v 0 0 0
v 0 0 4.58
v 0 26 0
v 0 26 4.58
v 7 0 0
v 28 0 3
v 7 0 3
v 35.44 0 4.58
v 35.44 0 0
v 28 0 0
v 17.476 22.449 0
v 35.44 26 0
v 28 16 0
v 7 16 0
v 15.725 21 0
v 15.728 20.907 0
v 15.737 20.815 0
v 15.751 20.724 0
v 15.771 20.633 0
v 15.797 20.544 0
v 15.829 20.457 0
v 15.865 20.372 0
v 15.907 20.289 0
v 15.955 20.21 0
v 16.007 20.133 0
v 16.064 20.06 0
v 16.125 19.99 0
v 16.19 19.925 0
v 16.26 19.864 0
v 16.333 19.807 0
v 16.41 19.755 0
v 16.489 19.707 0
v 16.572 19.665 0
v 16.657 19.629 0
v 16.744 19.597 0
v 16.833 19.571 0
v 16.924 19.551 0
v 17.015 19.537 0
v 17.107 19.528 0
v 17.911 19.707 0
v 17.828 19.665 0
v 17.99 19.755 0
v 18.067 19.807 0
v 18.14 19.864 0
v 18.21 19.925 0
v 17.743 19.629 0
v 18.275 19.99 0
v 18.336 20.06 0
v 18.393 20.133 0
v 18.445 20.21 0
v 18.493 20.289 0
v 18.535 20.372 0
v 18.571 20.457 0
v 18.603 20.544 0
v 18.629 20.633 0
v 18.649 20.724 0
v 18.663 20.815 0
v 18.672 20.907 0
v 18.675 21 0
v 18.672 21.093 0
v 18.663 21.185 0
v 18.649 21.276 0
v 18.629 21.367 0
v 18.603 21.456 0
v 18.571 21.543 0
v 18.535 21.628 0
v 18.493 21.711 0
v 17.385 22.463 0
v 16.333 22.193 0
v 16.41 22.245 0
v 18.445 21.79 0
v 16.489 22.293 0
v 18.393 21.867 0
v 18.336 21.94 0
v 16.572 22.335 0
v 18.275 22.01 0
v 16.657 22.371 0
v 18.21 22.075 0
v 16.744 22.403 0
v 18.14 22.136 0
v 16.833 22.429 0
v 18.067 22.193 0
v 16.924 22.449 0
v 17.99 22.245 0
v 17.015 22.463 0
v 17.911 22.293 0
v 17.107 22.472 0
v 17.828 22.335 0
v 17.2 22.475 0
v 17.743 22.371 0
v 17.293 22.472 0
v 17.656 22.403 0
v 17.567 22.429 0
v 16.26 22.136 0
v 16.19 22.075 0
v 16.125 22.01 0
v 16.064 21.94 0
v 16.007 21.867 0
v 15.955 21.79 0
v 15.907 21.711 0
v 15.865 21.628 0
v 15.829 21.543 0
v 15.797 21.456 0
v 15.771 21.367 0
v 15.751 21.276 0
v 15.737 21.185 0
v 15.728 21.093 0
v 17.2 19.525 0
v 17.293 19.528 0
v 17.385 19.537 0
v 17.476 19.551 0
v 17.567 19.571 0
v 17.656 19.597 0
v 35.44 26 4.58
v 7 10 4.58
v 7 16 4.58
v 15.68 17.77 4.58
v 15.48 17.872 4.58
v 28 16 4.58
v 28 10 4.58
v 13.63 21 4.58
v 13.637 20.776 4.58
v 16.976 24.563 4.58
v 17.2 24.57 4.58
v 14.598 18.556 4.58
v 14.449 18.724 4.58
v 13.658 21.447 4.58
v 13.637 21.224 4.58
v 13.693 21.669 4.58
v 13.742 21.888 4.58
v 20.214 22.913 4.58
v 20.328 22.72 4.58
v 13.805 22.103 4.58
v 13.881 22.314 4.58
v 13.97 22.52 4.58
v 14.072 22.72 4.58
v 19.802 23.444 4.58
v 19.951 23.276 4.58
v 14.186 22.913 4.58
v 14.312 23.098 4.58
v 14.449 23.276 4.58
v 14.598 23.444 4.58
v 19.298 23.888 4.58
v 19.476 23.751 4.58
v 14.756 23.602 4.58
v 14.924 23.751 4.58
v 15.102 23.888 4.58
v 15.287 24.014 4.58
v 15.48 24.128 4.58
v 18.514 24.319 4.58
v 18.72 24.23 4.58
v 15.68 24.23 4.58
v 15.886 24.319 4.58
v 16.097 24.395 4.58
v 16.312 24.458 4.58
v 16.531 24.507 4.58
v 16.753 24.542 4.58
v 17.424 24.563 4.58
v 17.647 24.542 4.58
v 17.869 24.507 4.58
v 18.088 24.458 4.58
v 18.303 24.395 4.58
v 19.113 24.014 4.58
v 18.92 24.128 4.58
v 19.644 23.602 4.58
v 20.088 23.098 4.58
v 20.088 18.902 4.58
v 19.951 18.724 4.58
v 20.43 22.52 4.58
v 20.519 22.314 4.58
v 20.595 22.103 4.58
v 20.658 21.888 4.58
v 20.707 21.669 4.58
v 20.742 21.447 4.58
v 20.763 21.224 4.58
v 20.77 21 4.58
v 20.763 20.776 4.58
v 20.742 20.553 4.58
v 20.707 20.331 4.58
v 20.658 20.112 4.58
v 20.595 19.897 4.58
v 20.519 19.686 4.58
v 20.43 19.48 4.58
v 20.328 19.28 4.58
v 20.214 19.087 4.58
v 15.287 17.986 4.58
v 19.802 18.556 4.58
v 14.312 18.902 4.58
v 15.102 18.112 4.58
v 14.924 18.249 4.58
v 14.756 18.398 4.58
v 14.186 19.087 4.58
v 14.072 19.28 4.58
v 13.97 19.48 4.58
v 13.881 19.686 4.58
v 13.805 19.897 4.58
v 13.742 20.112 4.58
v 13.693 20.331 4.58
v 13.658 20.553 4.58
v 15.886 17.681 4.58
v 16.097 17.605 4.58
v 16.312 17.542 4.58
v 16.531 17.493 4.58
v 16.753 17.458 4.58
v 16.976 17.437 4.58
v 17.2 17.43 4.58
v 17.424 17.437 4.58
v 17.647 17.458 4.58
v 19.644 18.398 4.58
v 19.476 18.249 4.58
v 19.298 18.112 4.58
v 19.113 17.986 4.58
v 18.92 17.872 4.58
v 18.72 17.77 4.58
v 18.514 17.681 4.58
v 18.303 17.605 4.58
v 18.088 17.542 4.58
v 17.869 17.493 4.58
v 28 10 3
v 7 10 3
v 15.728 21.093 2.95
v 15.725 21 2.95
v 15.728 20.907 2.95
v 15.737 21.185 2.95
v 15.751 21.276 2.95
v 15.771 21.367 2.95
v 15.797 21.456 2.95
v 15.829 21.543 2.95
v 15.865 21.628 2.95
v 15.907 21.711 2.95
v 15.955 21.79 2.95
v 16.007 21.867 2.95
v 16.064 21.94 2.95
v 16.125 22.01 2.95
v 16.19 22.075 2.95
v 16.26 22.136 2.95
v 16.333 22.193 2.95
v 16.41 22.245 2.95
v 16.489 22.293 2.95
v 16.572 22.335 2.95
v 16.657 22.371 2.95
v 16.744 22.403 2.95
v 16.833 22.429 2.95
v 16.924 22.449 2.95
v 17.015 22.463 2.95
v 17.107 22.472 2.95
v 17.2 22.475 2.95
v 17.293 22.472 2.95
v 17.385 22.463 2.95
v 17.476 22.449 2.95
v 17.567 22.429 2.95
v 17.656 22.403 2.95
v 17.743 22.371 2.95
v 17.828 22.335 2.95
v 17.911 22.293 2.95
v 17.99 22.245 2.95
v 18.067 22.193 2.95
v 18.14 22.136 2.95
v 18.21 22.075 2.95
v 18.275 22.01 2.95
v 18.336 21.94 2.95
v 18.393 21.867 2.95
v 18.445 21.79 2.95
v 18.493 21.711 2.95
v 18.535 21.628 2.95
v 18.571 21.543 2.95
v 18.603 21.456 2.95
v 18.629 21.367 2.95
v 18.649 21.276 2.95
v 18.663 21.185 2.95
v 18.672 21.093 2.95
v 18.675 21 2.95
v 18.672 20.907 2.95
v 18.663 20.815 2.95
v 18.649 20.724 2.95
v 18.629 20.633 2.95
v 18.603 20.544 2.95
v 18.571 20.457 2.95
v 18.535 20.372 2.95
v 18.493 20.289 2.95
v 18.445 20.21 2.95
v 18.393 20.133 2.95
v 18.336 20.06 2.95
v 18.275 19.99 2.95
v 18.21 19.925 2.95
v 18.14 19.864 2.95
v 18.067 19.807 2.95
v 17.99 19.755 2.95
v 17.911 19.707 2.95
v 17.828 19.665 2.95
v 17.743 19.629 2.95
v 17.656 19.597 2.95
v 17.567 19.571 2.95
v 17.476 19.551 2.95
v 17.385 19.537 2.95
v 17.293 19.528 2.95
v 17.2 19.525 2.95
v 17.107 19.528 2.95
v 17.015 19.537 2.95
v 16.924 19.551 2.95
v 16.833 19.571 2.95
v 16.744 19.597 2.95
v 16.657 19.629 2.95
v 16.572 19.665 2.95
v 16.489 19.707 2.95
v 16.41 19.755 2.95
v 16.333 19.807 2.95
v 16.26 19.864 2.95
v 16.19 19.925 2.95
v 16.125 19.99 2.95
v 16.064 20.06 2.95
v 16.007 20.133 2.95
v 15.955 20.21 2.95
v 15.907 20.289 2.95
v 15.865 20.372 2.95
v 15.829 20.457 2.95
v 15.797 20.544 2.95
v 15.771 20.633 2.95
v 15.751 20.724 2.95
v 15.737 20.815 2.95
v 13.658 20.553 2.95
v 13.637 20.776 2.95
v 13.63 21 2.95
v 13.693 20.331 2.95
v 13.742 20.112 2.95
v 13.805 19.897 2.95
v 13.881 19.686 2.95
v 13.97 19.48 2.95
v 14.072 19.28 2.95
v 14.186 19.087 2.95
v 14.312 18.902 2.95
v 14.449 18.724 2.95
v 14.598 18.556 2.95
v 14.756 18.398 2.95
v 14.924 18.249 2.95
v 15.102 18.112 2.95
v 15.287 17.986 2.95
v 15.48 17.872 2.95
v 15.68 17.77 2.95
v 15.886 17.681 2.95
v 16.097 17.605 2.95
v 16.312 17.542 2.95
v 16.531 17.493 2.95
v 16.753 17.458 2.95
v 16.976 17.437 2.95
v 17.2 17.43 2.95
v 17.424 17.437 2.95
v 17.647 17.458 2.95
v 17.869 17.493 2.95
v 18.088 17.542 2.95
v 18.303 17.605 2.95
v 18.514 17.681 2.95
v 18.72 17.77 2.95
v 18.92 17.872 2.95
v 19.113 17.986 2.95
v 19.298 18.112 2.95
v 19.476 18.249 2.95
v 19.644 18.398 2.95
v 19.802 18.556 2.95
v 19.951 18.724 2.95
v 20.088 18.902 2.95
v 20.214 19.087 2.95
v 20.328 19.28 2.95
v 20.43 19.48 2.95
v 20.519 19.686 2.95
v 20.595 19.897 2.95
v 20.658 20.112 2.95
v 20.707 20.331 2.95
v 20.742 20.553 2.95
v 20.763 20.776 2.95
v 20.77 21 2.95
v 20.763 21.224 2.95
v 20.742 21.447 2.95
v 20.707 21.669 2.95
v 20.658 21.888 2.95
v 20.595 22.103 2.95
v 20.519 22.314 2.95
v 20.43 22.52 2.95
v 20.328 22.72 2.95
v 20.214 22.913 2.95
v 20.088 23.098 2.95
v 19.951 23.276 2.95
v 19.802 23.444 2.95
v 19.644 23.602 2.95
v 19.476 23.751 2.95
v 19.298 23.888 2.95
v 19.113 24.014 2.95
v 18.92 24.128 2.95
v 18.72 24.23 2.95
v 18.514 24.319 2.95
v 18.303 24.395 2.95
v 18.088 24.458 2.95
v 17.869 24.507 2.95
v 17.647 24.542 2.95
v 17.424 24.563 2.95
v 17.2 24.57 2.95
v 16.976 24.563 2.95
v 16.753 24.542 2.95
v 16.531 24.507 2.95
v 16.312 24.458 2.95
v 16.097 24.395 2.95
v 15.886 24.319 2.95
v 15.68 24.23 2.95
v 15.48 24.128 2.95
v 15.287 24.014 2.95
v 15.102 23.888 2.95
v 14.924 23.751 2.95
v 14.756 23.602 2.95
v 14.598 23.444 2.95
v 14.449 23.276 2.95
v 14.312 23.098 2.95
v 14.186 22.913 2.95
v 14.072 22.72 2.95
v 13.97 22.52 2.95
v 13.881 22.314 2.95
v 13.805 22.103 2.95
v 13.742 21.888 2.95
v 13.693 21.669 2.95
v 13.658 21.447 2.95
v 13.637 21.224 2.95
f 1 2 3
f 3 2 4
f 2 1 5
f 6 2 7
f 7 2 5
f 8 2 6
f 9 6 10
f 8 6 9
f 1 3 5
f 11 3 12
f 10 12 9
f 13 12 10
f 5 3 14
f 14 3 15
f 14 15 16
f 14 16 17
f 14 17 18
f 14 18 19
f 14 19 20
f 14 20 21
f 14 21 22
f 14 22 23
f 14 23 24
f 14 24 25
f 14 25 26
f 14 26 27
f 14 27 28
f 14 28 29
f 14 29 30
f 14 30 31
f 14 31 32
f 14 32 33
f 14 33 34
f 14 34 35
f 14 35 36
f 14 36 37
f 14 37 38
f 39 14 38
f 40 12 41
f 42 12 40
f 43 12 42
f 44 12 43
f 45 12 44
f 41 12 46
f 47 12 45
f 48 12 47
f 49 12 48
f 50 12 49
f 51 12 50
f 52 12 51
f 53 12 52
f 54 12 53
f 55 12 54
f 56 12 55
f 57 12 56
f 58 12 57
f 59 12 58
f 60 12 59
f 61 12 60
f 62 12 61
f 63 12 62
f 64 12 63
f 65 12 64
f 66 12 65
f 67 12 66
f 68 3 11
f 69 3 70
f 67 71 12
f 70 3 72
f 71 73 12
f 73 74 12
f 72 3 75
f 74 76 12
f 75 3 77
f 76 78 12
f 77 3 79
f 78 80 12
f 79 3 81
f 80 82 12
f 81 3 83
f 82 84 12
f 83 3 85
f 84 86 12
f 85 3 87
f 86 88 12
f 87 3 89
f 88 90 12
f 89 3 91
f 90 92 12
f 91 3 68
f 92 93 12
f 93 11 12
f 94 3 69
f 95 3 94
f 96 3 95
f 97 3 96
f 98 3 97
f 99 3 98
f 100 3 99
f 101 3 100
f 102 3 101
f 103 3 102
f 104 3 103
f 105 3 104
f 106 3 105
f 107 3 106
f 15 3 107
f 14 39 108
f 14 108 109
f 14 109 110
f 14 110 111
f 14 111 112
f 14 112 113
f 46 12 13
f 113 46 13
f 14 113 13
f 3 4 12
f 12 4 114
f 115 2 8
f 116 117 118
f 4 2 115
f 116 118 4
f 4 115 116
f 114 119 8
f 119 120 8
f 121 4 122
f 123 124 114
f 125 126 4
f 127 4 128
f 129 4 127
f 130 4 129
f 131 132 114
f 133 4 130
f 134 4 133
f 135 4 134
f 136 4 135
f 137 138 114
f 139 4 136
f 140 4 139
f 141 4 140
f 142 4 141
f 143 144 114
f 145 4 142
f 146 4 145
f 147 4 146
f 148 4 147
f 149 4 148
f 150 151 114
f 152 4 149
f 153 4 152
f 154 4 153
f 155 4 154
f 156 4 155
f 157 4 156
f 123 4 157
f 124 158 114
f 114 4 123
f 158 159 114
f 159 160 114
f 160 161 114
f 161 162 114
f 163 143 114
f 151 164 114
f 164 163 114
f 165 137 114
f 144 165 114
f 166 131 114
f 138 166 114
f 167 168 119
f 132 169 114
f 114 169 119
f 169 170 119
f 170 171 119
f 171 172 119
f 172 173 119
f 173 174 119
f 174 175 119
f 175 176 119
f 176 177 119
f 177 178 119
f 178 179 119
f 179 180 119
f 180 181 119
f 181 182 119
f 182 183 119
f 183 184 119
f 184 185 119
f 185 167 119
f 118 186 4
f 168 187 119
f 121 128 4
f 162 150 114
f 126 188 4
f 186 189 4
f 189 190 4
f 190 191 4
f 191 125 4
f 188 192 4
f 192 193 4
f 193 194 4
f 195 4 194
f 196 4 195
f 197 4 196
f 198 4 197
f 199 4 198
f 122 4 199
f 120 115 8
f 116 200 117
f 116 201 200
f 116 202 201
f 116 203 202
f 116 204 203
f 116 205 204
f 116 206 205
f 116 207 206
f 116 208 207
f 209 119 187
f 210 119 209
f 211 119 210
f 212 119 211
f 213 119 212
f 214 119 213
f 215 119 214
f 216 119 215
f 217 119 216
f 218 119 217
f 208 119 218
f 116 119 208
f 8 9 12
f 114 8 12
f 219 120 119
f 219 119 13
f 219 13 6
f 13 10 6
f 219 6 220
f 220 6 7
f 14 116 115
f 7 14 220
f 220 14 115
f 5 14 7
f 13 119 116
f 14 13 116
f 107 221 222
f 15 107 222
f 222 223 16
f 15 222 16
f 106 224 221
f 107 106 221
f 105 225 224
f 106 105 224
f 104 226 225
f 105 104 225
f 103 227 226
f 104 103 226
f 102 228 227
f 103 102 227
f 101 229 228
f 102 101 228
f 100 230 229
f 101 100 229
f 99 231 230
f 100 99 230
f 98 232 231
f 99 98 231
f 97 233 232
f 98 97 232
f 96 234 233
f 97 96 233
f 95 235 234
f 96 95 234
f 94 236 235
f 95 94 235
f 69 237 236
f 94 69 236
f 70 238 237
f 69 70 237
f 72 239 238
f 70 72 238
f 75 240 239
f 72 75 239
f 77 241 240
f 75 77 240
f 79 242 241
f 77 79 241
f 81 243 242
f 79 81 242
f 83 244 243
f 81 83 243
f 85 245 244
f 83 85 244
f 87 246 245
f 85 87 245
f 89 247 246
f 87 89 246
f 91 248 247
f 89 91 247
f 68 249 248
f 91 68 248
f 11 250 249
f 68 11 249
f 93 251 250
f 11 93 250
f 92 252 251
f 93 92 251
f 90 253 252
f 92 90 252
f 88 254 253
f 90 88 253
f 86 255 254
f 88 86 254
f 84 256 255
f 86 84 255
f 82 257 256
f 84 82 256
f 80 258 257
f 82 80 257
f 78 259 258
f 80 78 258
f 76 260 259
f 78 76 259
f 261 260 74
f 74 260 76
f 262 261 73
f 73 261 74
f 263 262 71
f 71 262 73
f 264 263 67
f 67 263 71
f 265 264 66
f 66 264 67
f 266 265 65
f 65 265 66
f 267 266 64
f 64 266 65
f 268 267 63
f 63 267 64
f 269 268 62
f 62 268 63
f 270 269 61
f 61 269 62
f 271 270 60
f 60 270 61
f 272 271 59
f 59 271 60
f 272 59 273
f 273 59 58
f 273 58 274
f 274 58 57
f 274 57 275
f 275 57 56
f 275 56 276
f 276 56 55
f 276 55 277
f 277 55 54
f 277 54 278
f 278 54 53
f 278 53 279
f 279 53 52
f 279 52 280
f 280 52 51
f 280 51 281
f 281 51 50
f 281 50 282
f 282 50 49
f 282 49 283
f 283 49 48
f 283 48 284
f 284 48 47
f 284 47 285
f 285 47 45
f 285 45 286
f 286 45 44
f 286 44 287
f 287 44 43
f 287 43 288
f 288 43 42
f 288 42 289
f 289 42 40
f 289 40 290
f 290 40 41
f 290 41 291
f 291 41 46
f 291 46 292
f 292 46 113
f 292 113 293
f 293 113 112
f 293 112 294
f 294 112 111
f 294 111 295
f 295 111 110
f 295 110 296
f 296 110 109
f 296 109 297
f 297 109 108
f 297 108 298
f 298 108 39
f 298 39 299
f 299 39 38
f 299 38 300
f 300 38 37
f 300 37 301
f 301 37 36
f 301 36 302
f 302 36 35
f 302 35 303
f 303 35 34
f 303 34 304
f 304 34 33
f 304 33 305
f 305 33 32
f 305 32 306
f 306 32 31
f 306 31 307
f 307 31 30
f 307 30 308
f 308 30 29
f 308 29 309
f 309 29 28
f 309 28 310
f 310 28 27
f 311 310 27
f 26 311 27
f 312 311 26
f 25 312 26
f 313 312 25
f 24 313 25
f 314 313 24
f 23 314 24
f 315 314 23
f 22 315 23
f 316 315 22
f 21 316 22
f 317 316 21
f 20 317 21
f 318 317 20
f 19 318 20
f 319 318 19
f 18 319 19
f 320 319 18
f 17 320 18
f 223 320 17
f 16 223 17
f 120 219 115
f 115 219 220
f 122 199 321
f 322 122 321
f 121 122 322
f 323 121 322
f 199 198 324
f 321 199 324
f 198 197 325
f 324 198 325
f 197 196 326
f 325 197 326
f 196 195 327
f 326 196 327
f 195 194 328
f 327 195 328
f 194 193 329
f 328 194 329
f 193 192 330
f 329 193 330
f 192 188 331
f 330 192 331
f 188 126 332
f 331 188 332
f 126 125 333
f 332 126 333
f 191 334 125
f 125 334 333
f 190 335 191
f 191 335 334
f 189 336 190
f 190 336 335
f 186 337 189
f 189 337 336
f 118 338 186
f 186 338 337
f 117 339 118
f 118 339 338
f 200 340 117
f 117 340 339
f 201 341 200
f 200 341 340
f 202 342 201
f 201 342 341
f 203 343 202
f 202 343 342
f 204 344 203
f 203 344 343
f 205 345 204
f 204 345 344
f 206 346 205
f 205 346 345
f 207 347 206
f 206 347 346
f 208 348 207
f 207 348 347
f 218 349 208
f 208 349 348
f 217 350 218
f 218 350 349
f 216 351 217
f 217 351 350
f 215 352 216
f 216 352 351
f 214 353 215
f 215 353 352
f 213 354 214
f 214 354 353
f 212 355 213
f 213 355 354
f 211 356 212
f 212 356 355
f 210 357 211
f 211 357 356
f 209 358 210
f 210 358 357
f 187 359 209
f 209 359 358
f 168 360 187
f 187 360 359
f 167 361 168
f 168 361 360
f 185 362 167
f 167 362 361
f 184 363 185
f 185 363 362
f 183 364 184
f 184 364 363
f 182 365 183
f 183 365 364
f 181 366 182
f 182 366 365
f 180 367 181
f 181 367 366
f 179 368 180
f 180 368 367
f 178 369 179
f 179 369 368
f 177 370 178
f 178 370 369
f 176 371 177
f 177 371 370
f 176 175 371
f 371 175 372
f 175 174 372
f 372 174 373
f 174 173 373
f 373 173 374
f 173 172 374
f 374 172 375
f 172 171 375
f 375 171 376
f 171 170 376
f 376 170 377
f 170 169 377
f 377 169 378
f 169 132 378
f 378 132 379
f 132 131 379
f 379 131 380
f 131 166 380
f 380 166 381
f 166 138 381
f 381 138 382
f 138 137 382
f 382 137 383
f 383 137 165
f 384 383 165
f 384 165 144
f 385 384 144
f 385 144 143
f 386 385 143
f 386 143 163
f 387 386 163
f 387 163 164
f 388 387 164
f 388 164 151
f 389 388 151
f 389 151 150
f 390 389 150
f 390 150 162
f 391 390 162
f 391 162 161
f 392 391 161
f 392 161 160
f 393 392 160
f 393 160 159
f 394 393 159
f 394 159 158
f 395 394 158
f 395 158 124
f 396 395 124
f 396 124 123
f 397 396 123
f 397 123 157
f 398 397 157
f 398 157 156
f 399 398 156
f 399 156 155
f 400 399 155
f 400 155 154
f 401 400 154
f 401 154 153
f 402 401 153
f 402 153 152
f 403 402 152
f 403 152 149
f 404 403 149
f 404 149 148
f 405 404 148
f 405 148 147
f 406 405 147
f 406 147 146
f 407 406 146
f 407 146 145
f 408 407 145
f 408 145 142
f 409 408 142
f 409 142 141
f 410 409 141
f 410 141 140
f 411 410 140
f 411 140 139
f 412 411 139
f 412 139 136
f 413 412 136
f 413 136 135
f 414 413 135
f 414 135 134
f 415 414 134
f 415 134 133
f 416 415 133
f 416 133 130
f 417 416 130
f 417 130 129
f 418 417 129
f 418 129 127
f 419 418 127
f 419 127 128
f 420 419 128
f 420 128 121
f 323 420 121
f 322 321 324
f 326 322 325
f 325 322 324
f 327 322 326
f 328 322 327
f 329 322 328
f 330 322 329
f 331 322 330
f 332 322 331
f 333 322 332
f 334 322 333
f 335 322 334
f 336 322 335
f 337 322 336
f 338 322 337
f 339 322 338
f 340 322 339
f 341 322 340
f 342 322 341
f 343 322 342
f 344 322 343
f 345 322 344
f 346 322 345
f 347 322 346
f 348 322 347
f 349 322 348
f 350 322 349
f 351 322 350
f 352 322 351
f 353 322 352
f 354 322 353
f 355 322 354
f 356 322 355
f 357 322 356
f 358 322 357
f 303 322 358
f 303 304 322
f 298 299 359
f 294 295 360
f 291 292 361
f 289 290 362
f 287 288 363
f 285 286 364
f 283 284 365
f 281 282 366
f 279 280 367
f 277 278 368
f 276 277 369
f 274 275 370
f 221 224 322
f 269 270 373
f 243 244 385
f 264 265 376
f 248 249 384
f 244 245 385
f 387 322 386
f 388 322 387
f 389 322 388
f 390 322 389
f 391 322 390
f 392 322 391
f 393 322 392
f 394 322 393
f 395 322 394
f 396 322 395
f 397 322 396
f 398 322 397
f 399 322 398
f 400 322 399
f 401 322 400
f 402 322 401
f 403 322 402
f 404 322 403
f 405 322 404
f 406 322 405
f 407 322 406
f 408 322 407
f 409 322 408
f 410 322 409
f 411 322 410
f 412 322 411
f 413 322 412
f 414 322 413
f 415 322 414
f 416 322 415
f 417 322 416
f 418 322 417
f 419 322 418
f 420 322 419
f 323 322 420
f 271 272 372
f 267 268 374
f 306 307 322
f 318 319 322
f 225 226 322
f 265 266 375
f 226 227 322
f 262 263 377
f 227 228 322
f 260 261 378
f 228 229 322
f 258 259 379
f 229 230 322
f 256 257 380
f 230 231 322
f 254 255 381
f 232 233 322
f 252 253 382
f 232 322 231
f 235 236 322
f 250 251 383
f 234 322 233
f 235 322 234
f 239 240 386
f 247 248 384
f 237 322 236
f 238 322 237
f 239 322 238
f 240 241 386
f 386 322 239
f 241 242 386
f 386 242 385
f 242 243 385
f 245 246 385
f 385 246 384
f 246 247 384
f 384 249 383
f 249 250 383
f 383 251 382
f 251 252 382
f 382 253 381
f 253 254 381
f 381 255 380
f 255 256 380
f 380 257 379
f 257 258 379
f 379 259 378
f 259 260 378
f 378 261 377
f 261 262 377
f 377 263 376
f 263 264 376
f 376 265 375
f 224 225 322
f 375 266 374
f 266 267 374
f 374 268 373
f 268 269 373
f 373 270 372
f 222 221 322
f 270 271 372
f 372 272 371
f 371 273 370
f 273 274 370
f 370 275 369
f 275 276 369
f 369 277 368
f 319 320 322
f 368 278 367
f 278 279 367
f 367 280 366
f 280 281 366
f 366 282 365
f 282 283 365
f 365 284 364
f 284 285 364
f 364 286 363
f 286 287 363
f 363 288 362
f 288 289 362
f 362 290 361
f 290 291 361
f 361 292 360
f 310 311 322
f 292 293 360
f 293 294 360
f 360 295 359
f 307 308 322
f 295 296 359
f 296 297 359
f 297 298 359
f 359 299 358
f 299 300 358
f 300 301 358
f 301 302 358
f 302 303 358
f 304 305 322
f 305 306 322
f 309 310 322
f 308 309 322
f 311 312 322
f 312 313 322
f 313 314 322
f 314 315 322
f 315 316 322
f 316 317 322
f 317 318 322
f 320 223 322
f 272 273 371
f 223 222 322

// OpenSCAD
$fn=100;

module photointerrupterroller() {

	difference() 
	{
		union() 
		color("black")
		{
		cube([35.44,26,4.58]);
		}
		union()
		color("black")
		{	
		translate([7,0,0])
		cube([21,15.15,3]);
		translate([7,-1,0])
		cube([21,15.15,3]);
		translate([7,0,-1])
		cube([21,15.5,1.60]);
		translate([7,10,-1])
		cube([21,6,6]);
		translate([17.2,21,2.95])
		cylinder(h=5,d=7.14);
		translate([17.2,21,0])
		cylinder(h=5,d=2.95);
		translate([17.2,21,-1])
		cylinder(h=5,d=2.95);
		//cube([28,2.5,5]);
		//translate([3,17,3])
		//cube([30,9,2]);
		//translate([4,19,-1])
		//cube([28,2.5,5]);
		}
	}
}

photointerrupterroller();
